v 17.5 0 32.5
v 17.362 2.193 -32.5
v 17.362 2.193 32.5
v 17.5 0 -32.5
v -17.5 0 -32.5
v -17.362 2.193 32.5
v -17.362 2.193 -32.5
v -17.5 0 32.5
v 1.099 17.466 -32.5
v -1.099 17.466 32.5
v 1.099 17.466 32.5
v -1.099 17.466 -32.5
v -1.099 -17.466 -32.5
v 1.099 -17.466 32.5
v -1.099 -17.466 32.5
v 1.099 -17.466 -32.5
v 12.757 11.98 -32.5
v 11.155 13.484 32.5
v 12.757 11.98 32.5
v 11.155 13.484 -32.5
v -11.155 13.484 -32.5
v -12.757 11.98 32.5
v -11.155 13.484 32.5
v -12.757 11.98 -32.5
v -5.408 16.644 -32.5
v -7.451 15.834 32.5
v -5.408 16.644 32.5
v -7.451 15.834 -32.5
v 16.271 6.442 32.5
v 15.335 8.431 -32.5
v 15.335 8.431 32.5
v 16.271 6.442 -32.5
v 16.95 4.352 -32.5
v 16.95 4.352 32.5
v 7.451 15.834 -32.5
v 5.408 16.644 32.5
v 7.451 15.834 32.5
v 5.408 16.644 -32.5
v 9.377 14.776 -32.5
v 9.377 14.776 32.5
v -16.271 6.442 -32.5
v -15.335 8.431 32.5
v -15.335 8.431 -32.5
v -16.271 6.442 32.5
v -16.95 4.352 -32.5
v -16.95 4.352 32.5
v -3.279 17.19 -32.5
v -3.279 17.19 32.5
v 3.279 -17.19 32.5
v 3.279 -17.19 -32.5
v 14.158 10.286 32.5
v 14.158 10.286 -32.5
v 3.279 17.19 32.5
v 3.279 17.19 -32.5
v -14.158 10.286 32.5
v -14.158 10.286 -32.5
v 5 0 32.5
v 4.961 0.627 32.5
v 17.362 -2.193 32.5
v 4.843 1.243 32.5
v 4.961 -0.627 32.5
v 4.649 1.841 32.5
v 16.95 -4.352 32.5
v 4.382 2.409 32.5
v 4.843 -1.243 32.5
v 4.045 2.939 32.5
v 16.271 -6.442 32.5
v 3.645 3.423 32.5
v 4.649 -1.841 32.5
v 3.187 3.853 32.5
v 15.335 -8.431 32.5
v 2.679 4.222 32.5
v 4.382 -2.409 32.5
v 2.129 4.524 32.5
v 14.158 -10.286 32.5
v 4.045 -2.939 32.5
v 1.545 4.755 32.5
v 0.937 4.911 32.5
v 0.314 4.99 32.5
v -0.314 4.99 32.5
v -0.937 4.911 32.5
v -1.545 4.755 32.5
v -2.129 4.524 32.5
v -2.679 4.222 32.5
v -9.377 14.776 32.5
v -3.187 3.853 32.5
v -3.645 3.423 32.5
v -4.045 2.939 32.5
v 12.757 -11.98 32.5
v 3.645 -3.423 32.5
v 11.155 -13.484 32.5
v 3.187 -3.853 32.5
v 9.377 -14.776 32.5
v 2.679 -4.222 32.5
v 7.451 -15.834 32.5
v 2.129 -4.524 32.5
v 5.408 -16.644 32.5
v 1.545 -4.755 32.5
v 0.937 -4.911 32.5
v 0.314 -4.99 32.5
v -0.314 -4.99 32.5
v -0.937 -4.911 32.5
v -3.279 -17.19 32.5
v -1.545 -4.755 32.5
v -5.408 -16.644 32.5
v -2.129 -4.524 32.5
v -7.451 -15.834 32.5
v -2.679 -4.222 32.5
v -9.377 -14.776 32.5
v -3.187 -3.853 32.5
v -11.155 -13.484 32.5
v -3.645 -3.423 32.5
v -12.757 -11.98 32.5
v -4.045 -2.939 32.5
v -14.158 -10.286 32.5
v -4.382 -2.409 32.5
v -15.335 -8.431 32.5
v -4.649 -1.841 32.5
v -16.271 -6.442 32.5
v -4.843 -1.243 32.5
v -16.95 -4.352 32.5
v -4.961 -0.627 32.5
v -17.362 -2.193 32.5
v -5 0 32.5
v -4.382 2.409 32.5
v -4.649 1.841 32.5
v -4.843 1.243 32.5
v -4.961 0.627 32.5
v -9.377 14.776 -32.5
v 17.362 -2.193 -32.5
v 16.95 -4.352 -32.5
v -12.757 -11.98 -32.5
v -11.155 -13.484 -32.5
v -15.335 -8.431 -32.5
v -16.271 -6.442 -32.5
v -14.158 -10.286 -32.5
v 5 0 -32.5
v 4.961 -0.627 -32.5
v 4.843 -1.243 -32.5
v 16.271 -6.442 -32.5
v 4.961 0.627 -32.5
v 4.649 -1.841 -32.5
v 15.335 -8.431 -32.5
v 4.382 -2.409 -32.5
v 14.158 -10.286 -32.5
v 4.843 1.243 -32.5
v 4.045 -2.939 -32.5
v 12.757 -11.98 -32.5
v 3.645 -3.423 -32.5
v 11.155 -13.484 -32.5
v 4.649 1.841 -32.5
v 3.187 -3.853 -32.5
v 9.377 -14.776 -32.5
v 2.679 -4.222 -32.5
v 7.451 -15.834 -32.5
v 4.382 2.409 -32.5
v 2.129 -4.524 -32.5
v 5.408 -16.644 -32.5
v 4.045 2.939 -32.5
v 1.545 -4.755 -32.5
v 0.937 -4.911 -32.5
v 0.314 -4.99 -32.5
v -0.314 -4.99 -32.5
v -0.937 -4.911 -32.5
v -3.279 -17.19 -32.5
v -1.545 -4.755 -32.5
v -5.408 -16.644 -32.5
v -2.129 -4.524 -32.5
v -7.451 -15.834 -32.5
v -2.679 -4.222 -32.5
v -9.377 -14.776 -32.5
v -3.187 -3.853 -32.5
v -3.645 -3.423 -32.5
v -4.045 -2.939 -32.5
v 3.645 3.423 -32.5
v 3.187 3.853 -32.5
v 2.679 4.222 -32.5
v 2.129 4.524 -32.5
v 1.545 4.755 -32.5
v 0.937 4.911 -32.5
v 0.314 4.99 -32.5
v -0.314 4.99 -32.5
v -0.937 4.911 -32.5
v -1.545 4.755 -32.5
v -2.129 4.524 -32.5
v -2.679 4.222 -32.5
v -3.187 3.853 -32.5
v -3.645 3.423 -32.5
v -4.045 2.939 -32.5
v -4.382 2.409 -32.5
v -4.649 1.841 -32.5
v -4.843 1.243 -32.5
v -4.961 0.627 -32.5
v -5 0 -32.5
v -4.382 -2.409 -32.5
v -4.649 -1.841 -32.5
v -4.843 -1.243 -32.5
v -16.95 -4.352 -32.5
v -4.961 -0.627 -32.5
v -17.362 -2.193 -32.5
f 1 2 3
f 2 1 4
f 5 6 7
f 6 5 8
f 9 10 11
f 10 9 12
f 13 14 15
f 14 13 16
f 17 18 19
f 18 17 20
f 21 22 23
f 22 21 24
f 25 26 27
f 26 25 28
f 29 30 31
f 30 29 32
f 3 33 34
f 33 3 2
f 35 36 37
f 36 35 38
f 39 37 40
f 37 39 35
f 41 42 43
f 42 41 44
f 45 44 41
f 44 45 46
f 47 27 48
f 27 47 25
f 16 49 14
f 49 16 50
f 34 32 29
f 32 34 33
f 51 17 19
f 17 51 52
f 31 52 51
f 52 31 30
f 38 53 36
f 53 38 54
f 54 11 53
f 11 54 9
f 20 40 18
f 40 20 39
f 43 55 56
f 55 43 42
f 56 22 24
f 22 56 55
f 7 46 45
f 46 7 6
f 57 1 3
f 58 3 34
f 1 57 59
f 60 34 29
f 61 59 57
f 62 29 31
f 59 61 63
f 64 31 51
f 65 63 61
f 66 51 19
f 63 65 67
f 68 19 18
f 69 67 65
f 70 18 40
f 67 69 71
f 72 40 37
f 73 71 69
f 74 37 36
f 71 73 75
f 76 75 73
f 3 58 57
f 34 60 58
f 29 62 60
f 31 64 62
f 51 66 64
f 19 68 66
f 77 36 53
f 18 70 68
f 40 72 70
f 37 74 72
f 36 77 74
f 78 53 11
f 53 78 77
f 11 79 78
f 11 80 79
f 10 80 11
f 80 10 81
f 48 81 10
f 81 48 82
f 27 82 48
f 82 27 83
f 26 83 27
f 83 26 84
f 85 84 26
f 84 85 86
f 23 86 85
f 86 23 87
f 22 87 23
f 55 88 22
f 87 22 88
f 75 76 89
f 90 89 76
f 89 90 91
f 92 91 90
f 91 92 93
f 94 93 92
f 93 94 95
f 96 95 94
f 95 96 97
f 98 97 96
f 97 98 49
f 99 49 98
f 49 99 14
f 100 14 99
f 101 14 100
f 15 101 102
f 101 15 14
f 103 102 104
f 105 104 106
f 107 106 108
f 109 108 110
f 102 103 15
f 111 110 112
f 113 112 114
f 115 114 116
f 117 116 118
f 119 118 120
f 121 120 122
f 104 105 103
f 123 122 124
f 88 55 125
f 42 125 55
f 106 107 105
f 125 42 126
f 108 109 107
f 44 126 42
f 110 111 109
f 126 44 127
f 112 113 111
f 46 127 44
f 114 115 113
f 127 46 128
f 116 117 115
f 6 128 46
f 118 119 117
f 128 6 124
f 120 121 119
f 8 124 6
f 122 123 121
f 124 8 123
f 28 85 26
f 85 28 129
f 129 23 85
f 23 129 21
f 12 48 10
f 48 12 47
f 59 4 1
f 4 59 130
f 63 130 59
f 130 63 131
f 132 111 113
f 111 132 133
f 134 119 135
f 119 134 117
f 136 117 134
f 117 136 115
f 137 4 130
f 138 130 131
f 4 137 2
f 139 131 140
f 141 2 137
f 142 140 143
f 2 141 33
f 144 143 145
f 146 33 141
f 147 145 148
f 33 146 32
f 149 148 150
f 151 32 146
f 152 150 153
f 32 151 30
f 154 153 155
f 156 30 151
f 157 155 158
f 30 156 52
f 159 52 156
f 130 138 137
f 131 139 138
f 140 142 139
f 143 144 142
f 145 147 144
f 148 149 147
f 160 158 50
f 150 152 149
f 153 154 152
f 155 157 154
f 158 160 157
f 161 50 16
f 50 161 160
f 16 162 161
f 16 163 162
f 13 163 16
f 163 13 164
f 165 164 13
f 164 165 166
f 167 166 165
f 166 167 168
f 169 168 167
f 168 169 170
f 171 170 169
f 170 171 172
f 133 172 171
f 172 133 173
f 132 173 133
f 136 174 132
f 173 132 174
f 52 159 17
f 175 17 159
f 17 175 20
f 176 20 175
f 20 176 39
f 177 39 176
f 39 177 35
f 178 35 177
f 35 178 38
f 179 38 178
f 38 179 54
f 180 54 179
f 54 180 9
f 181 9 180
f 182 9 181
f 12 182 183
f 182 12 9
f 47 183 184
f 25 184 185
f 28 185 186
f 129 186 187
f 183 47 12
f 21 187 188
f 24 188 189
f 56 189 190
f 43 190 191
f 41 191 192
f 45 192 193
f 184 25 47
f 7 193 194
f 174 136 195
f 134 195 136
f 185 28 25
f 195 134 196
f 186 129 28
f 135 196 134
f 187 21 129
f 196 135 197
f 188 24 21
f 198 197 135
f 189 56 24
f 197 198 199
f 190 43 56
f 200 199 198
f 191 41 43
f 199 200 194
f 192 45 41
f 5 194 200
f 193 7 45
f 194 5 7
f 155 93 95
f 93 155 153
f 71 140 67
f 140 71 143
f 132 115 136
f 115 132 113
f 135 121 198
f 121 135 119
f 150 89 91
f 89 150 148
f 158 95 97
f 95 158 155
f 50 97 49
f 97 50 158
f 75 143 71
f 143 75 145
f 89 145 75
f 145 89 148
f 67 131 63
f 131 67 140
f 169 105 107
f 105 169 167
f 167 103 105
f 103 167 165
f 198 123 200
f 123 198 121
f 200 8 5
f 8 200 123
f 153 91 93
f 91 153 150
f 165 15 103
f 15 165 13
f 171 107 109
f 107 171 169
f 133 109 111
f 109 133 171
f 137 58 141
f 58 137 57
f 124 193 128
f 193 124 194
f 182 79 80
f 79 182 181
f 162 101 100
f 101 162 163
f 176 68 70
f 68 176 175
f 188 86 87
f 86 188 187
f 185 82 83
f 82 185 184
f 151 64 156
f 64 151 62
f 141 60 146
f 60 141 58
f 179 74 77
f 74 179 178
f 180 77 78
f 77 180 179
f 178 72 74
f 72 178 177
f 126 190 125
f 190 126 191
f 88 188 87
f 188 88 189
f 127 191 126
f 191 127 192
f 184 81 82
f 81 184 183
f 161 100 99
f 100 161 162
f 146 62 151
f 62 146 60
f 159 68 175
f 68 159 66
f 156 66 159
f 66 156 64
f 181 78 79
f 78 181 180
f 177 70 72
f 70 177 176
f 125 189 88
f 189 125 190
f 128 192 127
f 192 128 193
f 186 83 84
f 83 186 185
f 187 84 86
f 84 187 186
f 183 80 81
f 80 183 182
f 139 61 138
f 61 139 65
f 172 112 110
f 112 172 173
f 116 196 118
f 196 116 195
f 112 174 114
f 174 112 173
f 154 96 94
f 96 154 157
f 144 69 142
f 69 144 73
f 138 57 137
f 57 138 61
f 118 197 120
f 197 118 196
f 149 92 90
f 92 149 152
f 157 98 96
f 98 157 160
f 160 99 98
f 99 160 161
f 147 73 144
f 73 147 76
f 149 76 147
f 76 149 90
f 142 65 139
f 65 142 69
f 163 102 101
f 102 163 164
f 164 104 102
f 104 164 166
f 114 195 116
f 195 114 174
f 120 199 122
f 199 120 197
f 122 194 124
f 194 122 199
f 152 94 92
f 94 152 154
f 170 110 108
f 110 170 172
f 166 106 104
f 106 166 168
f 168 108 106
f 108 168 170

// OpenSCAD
$fn = 50;


difference() {
	union() {
		translate(v = [0, 0, -32.5000000000]) {
			cylinder(h = 65, r = 17.5000000000);
		}
	}
	union() {
		translate(v = [0, 0, -100.0000000000]) {
			cylinder(h = 200, r = 5);
		}
	}
}
